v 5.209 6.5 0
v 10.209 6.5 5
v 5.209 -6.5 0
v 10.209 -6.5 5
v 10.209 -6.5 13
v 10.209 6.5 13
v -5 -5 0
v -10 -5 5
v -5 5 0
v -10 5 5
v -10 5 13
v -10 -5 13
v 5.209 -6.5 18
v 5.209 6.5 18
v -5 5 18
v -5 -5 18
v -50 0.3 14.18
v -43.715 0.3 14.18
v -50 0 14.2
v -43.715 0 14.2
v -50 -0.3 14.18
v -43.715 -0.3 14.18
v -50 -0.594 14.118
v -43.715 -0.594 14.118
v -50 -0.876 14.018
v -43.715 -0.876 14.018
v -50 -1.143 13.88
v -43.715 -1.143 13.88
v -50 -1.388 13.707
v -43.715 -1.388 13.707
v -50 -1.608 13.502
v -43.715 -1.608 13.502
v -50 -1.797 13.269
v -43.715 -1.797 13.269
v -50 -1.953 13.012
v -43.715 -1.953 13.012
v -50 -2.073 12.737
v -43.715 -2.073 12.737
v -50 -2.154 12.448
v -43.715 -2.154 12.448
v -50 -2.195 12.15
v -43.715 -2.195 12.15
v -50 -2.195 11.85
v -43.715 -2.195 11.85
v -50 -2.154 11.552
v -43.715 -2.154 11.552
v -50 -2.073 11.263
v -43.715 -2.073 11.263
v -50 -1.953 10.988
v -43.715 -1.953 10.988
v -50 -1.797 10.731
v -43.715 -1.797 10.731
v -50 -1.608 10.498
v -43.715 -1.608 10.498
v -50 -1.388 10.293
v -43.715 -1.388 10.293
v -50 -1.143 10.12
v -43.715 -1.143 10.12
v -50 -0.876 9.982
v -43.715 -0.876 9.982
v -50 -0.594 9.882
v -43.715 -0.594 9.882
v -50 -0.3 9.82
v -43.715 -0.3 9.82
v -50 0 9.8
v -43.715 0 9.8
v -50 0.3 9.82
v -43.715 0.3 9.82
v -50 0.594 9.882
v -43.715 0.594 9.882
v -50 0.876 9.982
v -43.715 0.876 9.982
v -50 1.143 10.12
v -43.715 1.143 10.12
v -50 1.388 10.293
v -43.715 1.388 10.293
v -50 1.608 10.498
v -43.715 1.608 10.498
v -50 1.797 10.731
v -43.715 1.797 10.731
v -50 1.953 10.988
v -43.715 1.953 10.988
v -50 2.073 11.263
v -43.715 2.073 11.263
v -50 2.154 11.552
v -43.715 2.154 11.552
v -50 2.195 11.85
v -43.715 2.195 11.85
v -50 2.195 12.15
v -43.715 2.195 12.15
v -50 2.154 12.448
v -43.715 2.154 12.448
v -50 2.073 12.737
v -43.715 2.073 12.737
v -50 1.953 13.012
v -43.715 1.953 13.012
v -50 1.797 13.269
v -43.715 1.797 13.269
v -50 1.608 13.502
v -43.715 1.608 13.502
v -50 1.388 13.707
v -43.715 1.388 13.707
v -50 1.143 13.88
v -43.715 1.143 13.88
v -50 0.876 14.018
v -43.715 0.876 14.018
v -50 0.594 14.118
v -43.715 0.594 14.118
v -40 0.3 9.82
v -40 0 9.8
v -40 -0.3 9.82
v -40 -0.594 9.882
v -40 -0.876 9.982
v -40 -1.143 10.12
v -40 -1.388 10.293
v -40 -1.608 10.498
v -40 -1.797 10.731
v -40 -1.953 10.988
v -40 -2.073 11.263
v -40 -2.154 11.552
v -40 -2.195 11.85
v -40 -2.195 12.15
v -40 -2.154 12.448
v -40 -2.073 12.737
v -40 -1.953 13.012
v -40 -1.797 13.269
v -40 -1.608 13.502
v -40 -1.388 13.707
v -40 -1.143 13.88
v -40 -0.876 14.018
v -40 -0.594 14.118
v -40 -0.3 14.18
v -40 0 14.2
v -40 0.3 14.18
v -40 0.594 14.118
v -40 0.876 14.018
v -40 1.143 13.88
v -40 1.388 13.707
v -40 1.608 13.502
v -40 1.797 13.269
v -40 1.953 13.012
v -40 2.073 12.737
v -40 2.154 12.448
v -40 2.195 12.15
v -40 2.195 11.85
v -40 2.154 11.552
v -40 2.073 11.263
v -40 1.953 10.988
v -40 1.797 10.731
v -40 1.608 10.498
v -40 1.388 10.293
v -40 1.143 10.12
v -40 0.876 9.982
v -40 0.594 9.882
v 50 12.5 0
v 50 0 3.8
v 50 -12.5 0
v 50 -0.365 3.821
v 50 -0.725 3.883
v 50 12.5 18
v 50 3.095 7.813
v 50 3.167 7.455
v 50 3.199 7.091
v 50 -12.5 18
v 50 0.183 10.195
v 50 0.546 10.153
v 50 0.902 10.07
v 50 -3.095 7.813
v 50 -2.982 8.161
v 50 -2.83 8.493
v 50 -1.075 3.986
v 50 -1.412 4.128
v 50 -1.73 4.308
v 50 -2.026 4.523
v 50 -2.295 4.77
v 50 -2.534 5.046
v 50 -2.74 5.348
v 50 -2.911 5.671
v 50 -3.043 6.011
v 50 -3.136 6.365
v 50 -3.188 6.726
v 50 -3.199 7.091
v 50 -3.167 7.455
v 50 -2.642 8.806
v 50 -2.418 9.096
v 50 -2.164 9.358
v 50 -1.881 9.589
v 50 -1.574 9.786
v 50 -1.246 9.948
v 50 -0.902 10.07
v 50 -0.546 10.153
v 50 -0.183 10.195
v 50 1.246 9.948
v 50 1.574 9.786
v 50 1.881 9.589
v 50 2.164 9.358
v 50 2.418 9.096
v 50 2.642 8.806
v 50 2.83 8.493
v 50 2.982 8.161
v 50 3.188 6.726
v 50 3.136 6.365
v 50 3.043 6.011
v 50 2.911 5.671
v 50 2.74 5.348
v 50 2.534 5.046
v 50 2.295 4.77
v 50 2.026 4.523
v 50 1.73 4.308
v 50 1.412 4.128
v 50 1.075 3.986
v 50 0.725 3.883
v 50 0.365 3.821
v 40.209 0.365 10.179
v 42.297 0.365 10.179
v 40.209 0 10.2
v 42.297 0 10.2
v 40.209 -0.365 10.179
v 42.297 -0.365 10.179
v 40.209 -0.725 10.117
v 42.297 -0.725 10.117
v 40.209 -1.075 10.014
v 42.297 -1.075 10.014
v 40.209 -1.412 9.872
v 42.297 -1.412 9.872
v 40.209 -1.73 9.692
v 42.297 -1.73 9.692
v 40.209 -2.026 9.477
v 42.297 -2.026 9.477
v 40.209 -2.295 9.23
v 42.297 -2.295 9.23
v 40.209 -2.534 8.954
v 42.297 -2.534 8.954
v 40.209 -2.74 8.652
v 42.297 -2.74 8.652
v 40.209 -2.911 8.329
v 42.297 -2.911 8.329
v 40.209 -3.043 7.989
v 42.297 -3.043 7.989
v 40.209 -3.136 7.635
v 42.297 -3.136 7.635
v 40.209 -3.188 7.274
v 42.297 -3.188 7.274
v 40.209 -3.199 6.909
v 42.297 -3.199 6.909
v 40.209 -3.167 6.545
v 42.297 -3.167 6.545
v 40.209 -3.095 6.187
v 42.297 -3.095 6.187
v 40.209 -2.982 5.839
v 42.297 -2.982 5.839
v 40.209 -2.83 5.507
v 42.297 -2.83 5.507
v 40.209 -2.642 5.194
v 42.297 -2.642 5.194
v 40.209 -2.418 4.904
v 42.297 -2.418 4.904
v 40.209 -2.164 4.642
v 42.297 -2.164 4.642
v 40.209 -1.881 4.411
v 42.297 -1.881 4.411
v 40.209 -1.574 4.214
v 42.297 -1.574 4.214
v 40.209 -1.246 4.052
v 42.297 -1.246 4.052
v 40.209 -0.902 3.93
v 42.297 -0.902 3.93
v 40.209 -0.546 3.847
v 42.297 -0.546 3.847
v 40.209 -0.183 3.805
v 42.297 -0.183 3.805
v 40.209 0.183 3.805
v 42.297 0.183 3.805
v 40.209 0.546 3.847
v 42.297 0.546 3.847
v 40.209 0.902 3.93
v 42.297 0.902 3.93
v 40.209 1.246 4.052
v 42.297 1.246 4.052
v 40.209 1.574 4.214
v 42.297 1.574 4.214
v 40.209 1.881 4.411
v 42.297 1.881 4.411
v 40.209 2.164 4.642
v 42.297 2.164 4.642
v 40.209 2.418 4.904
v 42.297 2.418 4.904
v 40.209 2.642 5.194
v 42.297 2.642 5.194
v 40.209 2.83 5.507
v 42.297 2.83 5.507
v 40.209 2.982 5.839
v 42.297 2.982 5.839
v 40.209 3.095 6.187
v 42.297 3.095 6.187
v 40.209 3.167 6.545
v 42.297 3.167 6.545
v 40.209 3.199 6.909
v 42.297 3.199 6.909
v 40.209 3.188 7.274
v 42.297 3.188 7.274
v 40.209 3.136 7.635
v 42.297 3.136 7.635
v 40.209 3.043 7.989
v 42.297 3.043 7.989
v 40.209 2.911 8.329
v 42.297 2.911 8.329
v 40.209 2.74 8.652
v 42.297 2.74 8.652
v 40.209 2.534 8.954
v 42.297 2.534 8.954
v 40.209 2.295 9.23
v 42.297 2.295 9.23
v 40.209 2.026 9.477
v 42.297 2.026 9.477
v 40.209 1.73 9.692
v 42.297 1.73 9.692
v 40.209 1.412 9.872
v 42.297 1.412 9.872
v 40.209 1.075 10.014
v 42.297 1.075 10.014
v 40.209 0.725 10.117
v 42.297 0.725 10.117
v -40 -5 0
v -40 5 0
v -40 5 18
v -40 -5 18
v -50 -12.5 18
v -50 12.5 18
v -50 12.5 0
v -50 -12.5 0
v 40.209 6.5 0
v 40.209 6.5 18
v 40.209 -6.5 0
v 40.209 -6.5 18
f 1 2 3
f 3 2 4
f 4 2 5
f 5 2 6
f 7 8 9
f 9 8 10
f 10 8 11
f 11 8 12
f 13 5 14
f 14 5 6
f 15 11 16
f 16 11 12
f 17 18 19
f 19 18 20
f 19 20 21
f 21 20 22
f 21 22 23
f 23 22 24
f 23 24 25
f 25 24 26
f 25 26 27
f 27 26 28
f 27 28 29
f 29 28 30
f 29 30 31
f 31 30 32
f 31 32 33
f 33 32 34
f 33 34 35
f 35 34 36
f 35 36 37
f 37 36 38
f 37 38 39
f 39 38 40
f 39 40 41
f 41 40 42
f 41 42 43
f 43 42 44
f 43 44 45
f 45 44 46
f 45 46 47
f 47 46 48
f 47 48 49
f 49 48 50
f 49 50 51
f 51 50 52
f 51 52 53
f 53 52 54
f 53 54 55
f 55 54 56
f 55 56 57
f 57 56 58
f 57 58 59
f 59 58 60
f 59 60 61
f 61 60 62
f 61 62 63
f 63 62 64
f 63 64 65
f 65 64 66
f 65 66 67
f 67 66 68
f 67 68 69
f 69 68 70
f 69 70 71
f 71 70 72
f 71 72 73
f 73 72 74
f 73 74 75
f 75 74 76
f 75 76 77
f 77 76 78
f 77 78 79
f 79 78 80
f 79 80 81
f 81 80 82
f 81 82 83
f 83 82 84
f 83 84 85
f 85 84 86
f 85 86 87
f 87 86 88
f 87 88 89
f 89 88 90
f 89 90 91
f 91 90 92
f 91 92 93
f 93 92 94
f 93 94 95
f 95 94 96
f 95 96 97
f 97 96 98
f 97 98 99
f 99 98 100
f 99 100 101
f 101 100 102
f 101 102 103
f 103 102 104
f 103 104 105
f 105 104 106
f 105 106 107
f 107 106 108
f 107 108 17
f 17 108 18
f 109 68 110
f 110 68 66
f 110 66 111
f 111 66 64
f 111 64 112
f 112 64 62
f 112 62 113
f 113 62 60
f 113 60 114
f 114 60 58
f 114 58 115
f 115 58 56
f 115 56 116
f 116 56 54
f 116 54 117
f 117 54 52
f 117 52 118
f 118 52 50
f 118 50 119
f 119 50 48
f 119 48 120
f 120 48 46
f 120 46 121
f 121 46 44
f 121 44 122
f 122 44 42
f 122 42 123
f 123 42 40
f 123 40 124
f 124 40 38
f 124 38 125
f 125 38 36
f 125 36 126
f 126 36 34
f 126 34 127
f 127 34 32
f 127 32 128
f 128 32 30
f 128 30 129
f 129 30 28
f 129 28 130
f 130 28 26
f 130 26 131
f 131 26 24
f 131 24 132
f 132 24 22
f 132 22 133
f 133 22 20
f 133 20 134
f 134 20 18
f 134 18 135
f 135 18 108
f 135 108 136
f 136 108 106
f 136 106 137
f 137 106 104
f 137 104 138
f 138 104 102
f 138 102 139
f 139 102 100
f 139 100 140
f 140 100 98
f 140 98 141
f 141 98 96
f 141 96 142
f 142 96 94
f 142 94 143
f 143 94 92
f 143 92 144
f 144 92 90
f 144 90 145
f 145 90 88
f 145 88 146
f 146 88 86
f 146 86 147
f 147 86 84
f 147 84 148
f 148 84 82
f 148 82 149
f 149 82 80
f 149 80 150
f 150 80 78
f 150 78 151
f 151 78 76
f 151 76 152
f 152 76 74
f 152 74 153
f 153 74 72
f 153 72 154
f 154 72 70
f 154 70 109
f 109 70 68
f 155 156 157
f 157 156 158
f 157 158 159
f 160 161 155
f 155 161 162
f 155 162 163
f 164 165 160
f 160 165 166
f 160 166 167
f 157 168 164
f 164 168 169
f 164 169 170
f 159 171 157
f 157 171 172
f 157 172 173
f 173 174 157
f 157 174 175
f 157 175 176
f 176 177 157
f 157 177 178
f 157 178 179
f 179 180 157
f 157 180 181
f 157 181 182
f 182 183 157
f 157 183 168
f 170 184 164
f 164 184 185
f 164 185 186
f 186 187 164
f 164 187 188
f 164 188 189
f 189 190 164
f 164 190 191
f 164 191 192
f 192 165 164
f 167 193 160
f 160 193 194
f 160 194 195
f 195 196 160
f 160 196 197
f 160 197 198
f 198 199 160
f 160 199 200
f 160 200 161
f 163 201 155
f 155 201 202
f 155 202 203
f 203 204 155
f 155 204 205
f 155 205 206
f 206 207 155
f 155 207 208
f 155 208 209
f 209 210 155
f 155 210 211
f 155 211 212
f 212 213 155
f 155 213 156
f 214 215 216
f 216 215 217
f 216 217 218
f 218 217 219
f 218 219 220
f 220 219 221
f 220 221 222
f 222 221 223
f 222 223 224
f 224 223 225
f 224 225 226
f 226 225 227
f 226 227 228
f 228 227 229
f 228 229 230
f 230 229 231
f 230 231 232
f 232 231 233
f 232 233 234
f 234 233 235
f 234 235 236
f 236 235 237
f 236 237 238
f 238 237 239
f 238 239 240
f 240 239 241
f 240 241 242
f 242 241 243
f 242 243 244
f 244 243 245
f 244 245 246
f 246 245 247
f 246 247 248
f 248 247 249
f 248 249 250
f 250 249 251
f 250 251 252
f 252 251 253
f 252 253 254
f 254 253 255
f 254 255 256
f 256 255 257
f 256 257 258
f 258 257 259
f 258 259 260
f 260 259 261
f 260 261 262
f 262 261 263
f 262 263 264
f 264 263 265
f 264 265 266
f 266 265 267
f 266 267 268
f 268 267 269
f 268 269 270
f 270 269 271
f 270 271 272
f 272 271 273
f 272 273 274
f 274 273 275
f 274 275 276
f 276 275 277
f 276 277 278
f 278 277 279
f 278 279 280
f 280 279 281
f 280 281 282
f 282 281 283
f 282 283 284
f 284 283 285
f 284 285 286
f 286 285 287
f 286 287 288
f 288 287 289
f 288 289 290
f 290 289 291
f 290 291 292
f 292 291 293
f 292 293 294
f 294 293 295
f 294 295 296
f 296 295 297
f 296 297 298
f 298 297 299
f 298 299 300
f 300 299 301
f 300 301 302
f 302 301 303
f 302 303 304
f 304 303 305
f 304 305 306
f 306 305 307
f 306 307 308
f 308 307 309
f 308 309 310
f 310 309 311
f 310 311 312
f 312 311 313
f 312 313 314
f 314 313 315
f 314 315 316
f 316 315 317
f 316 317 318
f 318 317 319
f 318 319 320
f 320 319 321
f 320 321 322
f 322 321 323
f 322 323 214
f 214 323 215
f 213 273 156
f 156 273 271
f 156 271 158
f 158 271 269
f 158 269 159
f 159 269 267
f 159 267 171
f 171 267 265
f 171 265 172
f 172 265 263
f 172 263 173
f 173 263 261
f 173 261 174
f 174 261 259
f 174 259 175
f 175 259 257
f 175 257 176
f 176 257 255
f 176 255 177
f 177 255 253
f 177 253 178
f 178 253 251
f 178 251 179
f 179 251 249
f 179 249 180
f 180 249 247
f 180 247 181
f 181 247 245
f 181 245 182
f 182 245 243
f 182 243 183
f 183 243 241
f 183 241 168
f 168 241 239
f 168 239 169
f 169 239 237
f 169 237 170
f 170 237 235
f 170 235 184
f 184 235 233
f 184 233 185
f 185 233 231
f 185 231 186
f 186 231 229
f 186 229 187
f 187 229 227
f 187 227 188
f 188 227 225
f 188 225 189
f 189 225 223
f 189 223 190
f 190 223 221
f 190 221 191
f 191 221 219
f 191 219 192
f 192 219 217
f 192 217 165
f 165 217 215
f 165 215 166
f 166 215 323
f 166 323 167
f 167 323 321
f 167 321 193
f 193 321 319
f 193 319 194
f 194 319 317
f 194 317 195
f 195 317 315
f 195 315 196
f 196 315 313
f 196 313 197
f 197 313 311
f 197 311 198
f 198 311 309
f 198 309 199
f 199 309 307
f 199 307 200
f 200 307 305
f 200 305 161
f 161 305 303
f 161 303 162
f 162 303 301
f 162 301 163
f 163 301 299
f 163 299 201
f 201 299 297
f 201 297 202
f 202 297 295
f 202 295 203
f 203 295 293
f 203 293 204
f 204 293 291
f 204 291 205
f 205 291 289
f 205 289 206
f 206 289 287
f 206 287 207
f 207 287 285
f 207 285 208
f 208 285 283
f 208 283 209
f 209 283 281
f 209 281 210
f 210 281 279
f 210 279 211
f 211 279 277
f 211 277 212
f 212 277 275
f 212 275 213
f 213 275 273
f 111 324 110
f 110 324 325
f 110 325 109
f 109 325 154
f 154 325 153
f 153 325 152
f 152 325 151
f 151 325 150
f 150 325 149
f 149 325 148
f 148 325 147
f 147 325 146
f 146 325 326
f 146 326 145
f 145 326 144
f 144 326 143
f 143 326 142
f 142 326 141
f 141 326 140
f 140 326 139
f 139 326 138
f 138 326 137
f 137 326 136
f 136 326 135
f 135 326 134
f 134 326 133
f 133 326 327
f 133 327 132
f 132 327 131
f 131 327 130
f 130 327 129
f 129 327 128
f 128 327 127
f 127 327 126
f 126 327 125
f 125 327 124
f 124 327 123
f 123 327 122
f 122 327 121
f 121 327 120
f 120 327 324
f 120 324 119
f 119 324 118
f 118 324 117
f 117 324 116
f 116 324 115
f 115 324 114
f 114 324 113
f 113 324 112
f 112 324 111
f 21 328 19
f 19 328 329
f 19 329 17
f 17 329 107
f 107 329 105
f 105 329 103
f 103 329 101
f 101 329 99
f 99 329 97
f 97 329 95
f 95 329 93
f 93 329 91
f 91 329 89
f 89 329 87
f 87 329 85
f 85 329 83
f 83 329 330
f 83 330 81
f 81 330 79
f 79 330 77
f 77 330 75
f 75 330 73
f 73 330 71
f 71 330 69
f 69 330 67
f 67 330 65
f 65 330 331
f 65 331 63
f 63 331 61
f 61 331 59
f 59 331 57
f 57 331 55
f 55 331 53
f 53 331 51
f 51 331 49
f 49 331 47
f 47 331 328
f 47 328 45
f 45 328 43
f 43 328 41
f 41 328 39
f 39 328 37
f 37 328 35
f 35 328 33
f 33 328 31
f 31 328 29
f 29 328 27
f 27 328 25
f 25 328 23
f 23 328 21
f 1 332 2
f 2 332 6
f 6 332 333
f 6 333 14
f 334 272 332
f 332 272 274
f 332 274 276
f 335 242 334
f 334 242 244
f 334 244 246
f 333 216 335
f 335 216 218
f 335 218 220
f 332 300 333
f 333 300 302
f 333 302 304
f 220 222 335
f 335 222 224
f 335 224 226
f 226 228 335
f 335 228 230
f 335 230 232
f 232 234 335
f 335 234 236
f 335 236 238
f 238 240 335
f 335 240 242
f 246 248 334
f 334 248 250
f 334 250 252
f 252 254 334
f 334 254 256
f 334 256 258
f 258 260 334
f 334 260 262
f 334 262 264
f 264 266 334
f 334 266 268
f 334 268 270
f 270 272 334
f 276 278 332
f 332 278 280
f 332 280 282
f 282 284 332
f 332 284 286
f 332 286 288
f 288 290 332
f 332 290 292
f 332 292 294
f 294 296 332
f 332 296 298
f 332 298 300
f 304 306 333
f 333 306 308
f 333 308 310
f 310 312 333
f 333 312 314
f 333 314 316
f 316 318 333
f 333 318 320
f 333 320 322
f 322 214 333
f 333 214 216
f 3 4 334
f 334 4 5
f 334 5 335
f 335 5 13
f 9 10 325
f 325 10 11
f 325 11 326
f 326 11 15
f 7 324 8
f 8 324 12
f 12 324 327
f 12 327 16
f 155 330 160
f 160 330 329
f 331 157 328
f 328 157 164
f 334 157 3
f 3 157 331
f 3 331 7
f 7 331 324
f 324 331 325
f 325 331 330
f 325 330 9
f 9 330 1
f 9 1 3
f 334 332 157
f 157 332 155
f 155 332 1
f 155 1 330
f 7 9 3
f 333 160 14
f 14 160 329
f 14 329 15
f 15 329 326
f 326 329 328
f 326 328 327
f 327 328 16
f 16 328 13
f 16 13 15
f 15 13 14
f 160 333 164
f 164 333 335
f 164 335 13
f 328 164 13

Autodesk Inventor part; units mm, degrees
ref_plane "YZ Plane" through (0, 0, 0) normal (1, 0, 0) x (0, 1, 0)
ref_plane "XZ Plane" through (0, 0, 0) normal (0, 1, 0) x (-1, 0, 0)
ref_plane "XY Plane" through (0, 0, 0) normal (0, 0, 1) x (1, 0, 0)
sketch "Sketch1" plane through (0, 0, 0) normal (0, 0, 1) x (1, 0, 0)
  line L0 (50, -12.5) -> (-50, -12.5)
  line L1 (-50, -12.5) -> (-50, 12.5)
  line L2 (-50, 12.5) -> (50, 12.5)
  line L3 (50, 12.5) -> (50, -12.5)
  line L4 (50, -12.5) -> (-50, 12.5) construction
  line L5 (-50, -12.5) -> (50, 12.5) construction
  line L6 (-10, -5) -> (-40, -5)
  line L7 (-40, -5) -> (-40, 5)
  line L8 (-40, 5) -> (-10, 5)
  line L9 (-10, 5) -> (-10, -5)
  line L10 (-10, -5) -> (-40, 5) construction
  line L11 (-40, -5) -> (-10, 5) construction
  line L12 (10.2094, -6.5) -> (40.2094, -6.5)
  line L13 (40.2094, -6.5) -> (40.2094, 6.5)
  line L14 (40.2094, 6.5) -> (10.2094, 6.5)
  line L15 (10.2094, 6.5) -> (10.2094, -6.5)
  line L16 (10.2094, -6.5) -> (40.2094, 6.5) construction
  line L17 (40.2094, -6.5) -> (10.2094, 6.5) construction
  point P0 (0, 0)
  point P1 (-40, 0)
  point P2 (40, 0)
  point P3 (-25, 0)
  point P4 (25.2094, 0)
  dimension "d0" = 100
  dimension "d1" = 25
  dimension "d2" = 10
  dimension "d3" = 13
extrude "Extrusion1" add sketch "Sketch1" along normal blind 18
sketch "M6 thru" plane through (50, -12.5, 0) normal (1, 0, 0) x (0, 0, -1)
  line L0 (0, 25) -> (0, 0) projected
  point P0 (0, 12.5)
  point P1 (-7, 12.5)
  dimension "d13" = 7
sketch "Sketch3" plane through (-50, -12.5, 0) normal (-1, 0, 0) x (0, 0, 1)
  line L0 (0, 0) -> (0, 25) projected
  point P0 (0, 12.5)
  point P1 (12, 12.5)
  dimension "d14" = 12
hole "M6 thru-hole" at (50, 0, 7) direction (-1, 0, 0) diameter 6.4 end up to surface
hole "M4 thru-hole" at (-50, 0, 12) direction (1, 0, 0) diameter 4.4 end up to surface
chamfer "Chamfer1" distance 5 angle 45 4 edges at (-10, 0, 18) (10.2094, 0, 18) (-10, 0, 0) (10.2094, 0, 0)
properties part number "cage2table-mount-M4(top)-M6(bottom)-H100mm-HoleOffset5mm"
